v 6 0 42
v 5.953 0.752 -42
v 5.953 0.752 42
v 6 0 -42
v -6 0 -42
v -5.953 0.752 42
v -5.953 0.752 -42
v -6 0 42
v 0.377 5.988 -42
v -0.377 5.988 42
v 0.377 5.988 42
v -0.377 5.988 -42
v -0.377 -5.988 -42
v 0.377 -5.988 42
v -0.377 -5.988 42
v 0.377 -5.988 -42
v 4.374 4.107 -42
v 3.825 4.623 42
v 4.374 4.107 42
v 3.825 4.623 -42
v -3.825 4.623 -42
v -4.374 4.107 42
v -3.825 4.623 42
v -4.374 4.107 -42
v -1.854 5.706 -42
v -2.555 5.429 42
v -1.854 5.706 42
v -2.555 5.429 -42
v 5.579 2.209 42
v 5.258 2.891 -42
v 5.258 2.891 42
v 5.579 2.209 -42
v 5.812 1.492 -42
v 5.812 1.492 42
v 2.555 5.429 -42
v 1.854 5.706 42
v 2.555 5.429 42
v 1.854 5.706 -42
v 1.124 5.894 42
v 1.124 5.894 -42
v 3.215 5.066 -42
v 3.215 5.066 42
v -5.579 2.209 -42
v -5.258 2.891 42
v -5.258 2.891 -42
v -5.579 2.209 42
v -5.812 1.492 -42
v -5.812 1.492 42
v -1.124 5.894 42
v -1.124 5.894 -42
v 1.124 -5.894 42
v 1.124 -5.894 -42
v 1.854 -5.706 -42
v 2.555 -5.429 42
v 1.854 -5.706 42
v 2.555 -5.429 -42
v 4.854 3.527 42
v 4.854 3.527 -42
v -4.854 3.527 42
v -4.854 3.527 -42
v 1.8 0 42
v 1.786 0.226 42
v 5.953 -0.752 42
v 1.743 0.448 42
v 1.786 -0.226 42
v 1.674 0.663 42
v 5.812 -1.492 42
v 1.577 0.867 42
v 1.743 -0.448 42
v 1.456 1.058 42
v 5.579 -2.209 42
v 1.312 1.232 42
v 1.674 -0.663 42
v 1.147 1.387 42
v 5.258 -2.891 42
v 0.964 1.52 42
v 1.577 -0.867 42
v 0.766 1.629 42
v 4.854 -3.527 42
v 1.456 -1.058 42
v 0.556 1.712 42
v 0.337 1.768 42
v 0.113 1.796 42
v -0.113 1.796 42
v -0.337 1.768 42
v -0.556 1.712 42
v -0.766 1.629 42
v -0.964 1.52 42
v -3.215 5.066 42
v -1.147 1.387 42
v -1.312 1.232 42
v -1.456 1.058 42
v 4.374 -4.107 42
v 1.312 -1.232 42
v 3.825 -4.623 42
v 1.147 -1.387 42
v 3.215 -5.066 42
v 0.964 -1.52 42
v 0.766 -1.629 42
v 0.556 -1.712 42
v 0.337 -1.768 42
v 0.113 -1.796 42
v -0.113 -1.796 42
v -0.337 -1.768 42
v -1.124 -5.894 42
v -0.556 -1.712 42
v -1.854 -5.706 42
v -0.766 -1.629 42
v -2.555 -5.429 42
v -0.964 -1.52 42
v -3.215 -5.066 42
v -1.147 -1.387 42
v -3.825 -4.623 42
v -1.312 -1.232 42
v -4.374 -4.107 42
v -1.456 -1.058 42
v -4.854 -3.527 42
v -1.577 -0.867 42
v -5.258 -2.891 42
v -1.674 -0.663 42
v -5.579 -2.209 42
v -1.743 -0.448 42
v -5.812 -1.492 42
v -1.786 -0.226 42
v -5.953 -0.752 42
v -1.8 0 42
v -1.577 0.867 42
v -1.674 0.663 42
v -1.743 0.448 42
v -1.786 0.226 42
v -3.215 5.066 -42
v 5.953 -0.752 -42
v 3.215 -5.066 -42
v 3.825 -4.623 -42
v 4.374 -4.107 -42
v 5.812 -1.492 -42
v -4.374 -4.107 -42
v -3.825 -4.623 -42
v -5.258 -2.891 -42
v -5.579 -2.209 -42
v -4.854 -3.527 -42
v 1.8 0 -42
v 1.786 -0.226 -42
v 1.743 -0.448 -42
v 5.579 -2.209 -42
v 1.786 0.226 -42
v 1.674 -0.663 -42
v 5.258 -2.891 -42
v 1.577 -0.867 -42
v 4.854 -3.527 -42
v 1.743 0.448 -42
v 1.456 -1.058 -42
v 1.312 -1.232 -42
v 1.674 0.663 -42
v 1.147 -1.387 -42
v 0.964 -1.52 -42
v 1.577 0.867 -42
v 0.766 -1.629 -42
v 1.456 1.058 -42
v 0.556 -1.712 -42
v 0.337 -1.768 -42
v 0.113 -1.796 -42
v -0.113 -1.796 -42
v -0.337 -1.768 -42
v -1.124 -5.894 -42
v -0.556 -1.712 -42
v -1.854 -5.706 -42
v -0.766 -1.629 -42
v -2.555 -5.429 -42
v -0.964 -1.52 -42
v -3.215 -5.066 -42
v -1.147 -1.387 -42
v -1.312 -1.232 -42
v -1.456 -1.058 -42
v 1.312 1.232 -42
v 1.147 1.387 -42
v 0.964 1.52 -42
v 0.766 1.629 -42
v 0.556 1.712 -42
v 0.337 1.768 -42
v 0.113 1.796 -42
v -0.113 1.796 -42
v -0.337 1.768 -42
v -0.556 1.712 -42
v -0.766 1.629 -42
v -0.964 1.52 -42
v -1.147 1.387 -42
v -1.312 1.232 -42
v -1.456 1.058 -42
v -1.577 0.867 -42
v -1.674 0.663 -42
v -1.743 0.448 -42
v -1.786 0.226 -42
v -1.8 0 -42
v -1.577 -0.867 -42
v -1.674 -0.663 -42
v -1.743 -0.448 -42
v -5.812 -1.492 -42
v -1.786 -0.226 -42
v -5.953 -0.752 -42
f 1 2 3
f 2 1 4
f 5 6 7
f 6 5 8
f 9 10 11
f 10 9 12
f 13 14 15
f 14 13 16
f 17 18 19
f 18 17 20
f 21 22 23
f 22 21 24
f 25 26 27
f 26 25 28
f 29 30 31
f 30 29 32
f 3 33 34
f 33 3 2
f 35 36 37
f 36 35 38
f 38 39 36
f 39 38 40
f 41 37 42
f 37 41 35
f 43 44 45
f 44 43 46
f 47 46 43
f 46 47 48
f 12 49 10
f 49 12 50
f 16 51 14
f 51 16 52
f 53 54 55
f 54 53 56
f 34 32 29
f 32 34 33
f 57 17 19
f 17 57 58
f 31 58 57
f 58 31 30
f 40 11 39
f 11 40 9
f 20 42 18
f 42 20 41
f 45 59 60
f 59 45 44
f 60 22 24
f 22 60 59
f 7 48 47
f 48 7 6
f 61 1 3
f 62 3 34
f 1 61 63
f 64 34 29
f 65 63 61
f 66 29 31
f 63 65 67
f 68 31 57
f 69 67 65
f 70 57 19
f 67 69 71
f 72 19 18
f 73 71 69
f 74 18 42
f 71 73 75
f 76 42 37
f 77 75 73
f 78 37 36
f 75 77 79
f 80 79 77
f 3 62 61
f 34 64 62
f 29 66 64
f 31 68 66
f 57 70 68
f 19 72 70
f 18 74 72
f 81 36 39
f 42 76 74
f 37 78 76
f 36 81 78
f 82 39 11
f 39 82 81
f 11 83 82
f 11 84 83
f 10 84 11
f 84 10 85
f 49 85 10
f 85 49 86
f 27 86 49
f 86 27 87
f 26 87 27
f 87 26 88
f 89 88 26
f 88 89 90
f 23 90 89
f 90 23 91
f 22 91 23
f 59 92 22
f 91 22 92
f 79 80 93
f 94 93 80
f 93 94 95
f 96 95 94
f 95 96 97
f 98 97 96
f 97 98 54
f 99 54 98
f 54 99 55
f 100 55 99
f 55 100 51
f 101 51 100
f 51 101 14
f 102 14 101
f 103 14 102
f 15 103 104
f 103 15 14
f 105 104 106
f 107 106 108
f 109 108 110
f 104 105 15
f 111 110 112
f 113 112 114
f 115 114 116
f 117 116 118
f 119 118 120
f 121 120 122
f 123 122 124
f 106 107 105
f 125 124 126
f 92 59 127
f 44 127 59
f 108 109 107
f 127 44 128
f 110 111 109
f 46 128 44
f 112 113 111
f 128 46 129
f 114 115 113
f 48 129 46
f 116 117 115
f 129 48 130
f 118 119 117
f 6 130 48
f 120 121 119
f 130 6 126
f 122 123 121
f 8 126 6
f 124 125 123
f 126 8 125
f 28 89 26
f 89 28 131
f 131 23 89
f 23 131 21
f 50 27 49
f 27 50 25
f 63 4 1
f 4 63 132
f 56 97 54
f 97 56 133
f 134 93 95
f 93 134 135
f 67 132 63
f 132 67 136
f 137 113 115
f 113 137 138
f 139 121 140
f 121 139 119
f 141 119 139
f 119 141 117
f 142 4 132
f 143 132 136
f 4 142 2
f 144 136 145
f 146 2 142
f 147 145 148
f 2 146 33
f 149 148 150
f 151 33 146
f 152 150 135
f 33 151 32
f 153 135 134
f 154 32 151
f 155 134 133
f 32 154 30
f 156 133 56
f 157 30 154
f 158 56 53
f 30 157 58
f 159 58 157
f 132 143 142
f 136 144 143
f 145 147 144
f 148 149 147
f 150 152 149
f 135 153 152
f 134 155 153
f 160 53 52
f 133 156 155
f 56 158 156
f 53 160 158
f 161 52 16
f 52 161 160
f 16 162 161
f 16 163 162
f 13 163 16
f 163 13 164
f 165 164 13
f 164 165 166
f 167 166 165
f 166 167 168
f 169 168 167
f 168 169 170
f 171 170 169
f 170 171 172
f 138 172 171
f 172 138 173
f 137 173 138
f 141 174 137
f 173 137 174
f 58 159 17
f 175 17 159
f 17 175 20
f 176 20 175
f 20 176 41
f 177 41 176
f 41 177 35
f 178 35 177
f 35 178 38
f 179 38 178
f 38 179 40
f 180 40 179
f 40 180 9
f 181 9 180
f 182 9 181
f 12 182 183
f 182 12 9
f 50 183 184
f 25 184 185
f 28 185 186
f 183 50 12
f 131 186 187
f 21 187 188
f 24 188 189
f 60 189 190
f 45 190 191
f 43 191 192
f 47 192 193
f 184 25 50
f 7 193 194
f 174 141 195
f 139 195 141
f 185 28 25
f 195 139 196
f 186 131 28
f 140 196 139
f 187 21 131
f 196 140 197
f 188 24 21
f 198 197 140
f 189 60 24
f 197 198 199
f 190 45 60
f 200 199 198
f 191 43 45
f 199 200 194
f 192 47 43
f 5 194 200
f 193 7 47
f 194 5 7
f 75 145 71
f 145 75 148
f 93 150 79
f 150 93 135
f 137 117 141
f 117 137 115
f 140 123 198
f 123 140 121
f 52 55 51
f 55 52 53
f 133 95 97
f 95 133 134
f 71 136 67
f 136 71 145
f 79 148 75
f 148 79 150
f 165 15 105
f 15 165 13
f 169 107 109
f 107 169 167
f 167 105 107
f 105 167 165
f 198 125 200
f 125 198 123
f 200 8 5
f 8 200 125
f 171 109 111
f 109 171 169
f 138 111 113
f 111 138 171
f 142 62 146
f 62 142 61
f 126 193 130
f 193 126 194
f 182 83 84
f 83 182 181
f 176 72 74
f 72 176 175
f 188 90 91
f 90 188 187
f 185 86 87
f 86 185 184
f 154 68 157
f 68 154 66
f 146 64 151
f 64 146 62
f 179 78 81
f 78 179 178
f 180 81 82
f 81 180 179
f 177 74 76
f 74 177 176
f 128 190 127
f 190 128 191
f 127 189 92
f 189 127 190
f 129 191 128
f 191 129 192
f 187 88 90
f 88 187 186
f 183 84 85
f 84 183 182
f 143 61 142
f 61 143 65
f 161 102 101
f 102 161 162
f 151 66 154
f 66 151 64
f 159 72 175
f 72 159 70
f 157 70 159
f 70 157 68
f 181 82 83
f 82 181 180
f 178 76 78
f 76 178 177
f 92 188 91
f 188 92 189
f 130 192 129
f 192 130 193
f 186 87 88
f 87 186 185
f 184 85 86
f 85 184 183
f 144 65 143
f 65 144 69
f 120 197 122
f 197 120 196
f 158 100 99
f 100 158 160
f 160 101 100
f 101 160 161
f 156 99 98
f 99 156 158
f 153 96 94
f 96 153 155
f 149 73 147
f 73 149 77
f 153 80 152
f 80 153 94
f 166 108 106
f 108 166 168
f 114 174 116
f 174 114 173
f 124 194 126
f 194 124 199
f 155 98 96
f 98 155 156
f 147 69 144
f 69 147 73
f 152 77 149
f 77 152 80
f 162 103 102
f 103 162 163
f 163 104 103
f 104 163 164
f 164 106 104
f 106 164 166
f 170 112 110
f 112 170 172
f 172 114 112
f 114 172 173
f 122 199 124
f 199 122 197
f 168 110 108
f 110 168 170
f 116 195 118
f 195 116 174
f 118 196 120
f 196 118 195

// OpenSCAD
$fn = 50;


difference() {
	union() {
		translate(v = [0, 0, -42.0000000000]) {
			cylinder(h = 84, r = 6.0000000000);
		}
	}
	union() {
		translate(v = [0, 0, -100.0000000000]) {
			cylinder(h = 200, r = 1.8000000000);
		}
	}
}
